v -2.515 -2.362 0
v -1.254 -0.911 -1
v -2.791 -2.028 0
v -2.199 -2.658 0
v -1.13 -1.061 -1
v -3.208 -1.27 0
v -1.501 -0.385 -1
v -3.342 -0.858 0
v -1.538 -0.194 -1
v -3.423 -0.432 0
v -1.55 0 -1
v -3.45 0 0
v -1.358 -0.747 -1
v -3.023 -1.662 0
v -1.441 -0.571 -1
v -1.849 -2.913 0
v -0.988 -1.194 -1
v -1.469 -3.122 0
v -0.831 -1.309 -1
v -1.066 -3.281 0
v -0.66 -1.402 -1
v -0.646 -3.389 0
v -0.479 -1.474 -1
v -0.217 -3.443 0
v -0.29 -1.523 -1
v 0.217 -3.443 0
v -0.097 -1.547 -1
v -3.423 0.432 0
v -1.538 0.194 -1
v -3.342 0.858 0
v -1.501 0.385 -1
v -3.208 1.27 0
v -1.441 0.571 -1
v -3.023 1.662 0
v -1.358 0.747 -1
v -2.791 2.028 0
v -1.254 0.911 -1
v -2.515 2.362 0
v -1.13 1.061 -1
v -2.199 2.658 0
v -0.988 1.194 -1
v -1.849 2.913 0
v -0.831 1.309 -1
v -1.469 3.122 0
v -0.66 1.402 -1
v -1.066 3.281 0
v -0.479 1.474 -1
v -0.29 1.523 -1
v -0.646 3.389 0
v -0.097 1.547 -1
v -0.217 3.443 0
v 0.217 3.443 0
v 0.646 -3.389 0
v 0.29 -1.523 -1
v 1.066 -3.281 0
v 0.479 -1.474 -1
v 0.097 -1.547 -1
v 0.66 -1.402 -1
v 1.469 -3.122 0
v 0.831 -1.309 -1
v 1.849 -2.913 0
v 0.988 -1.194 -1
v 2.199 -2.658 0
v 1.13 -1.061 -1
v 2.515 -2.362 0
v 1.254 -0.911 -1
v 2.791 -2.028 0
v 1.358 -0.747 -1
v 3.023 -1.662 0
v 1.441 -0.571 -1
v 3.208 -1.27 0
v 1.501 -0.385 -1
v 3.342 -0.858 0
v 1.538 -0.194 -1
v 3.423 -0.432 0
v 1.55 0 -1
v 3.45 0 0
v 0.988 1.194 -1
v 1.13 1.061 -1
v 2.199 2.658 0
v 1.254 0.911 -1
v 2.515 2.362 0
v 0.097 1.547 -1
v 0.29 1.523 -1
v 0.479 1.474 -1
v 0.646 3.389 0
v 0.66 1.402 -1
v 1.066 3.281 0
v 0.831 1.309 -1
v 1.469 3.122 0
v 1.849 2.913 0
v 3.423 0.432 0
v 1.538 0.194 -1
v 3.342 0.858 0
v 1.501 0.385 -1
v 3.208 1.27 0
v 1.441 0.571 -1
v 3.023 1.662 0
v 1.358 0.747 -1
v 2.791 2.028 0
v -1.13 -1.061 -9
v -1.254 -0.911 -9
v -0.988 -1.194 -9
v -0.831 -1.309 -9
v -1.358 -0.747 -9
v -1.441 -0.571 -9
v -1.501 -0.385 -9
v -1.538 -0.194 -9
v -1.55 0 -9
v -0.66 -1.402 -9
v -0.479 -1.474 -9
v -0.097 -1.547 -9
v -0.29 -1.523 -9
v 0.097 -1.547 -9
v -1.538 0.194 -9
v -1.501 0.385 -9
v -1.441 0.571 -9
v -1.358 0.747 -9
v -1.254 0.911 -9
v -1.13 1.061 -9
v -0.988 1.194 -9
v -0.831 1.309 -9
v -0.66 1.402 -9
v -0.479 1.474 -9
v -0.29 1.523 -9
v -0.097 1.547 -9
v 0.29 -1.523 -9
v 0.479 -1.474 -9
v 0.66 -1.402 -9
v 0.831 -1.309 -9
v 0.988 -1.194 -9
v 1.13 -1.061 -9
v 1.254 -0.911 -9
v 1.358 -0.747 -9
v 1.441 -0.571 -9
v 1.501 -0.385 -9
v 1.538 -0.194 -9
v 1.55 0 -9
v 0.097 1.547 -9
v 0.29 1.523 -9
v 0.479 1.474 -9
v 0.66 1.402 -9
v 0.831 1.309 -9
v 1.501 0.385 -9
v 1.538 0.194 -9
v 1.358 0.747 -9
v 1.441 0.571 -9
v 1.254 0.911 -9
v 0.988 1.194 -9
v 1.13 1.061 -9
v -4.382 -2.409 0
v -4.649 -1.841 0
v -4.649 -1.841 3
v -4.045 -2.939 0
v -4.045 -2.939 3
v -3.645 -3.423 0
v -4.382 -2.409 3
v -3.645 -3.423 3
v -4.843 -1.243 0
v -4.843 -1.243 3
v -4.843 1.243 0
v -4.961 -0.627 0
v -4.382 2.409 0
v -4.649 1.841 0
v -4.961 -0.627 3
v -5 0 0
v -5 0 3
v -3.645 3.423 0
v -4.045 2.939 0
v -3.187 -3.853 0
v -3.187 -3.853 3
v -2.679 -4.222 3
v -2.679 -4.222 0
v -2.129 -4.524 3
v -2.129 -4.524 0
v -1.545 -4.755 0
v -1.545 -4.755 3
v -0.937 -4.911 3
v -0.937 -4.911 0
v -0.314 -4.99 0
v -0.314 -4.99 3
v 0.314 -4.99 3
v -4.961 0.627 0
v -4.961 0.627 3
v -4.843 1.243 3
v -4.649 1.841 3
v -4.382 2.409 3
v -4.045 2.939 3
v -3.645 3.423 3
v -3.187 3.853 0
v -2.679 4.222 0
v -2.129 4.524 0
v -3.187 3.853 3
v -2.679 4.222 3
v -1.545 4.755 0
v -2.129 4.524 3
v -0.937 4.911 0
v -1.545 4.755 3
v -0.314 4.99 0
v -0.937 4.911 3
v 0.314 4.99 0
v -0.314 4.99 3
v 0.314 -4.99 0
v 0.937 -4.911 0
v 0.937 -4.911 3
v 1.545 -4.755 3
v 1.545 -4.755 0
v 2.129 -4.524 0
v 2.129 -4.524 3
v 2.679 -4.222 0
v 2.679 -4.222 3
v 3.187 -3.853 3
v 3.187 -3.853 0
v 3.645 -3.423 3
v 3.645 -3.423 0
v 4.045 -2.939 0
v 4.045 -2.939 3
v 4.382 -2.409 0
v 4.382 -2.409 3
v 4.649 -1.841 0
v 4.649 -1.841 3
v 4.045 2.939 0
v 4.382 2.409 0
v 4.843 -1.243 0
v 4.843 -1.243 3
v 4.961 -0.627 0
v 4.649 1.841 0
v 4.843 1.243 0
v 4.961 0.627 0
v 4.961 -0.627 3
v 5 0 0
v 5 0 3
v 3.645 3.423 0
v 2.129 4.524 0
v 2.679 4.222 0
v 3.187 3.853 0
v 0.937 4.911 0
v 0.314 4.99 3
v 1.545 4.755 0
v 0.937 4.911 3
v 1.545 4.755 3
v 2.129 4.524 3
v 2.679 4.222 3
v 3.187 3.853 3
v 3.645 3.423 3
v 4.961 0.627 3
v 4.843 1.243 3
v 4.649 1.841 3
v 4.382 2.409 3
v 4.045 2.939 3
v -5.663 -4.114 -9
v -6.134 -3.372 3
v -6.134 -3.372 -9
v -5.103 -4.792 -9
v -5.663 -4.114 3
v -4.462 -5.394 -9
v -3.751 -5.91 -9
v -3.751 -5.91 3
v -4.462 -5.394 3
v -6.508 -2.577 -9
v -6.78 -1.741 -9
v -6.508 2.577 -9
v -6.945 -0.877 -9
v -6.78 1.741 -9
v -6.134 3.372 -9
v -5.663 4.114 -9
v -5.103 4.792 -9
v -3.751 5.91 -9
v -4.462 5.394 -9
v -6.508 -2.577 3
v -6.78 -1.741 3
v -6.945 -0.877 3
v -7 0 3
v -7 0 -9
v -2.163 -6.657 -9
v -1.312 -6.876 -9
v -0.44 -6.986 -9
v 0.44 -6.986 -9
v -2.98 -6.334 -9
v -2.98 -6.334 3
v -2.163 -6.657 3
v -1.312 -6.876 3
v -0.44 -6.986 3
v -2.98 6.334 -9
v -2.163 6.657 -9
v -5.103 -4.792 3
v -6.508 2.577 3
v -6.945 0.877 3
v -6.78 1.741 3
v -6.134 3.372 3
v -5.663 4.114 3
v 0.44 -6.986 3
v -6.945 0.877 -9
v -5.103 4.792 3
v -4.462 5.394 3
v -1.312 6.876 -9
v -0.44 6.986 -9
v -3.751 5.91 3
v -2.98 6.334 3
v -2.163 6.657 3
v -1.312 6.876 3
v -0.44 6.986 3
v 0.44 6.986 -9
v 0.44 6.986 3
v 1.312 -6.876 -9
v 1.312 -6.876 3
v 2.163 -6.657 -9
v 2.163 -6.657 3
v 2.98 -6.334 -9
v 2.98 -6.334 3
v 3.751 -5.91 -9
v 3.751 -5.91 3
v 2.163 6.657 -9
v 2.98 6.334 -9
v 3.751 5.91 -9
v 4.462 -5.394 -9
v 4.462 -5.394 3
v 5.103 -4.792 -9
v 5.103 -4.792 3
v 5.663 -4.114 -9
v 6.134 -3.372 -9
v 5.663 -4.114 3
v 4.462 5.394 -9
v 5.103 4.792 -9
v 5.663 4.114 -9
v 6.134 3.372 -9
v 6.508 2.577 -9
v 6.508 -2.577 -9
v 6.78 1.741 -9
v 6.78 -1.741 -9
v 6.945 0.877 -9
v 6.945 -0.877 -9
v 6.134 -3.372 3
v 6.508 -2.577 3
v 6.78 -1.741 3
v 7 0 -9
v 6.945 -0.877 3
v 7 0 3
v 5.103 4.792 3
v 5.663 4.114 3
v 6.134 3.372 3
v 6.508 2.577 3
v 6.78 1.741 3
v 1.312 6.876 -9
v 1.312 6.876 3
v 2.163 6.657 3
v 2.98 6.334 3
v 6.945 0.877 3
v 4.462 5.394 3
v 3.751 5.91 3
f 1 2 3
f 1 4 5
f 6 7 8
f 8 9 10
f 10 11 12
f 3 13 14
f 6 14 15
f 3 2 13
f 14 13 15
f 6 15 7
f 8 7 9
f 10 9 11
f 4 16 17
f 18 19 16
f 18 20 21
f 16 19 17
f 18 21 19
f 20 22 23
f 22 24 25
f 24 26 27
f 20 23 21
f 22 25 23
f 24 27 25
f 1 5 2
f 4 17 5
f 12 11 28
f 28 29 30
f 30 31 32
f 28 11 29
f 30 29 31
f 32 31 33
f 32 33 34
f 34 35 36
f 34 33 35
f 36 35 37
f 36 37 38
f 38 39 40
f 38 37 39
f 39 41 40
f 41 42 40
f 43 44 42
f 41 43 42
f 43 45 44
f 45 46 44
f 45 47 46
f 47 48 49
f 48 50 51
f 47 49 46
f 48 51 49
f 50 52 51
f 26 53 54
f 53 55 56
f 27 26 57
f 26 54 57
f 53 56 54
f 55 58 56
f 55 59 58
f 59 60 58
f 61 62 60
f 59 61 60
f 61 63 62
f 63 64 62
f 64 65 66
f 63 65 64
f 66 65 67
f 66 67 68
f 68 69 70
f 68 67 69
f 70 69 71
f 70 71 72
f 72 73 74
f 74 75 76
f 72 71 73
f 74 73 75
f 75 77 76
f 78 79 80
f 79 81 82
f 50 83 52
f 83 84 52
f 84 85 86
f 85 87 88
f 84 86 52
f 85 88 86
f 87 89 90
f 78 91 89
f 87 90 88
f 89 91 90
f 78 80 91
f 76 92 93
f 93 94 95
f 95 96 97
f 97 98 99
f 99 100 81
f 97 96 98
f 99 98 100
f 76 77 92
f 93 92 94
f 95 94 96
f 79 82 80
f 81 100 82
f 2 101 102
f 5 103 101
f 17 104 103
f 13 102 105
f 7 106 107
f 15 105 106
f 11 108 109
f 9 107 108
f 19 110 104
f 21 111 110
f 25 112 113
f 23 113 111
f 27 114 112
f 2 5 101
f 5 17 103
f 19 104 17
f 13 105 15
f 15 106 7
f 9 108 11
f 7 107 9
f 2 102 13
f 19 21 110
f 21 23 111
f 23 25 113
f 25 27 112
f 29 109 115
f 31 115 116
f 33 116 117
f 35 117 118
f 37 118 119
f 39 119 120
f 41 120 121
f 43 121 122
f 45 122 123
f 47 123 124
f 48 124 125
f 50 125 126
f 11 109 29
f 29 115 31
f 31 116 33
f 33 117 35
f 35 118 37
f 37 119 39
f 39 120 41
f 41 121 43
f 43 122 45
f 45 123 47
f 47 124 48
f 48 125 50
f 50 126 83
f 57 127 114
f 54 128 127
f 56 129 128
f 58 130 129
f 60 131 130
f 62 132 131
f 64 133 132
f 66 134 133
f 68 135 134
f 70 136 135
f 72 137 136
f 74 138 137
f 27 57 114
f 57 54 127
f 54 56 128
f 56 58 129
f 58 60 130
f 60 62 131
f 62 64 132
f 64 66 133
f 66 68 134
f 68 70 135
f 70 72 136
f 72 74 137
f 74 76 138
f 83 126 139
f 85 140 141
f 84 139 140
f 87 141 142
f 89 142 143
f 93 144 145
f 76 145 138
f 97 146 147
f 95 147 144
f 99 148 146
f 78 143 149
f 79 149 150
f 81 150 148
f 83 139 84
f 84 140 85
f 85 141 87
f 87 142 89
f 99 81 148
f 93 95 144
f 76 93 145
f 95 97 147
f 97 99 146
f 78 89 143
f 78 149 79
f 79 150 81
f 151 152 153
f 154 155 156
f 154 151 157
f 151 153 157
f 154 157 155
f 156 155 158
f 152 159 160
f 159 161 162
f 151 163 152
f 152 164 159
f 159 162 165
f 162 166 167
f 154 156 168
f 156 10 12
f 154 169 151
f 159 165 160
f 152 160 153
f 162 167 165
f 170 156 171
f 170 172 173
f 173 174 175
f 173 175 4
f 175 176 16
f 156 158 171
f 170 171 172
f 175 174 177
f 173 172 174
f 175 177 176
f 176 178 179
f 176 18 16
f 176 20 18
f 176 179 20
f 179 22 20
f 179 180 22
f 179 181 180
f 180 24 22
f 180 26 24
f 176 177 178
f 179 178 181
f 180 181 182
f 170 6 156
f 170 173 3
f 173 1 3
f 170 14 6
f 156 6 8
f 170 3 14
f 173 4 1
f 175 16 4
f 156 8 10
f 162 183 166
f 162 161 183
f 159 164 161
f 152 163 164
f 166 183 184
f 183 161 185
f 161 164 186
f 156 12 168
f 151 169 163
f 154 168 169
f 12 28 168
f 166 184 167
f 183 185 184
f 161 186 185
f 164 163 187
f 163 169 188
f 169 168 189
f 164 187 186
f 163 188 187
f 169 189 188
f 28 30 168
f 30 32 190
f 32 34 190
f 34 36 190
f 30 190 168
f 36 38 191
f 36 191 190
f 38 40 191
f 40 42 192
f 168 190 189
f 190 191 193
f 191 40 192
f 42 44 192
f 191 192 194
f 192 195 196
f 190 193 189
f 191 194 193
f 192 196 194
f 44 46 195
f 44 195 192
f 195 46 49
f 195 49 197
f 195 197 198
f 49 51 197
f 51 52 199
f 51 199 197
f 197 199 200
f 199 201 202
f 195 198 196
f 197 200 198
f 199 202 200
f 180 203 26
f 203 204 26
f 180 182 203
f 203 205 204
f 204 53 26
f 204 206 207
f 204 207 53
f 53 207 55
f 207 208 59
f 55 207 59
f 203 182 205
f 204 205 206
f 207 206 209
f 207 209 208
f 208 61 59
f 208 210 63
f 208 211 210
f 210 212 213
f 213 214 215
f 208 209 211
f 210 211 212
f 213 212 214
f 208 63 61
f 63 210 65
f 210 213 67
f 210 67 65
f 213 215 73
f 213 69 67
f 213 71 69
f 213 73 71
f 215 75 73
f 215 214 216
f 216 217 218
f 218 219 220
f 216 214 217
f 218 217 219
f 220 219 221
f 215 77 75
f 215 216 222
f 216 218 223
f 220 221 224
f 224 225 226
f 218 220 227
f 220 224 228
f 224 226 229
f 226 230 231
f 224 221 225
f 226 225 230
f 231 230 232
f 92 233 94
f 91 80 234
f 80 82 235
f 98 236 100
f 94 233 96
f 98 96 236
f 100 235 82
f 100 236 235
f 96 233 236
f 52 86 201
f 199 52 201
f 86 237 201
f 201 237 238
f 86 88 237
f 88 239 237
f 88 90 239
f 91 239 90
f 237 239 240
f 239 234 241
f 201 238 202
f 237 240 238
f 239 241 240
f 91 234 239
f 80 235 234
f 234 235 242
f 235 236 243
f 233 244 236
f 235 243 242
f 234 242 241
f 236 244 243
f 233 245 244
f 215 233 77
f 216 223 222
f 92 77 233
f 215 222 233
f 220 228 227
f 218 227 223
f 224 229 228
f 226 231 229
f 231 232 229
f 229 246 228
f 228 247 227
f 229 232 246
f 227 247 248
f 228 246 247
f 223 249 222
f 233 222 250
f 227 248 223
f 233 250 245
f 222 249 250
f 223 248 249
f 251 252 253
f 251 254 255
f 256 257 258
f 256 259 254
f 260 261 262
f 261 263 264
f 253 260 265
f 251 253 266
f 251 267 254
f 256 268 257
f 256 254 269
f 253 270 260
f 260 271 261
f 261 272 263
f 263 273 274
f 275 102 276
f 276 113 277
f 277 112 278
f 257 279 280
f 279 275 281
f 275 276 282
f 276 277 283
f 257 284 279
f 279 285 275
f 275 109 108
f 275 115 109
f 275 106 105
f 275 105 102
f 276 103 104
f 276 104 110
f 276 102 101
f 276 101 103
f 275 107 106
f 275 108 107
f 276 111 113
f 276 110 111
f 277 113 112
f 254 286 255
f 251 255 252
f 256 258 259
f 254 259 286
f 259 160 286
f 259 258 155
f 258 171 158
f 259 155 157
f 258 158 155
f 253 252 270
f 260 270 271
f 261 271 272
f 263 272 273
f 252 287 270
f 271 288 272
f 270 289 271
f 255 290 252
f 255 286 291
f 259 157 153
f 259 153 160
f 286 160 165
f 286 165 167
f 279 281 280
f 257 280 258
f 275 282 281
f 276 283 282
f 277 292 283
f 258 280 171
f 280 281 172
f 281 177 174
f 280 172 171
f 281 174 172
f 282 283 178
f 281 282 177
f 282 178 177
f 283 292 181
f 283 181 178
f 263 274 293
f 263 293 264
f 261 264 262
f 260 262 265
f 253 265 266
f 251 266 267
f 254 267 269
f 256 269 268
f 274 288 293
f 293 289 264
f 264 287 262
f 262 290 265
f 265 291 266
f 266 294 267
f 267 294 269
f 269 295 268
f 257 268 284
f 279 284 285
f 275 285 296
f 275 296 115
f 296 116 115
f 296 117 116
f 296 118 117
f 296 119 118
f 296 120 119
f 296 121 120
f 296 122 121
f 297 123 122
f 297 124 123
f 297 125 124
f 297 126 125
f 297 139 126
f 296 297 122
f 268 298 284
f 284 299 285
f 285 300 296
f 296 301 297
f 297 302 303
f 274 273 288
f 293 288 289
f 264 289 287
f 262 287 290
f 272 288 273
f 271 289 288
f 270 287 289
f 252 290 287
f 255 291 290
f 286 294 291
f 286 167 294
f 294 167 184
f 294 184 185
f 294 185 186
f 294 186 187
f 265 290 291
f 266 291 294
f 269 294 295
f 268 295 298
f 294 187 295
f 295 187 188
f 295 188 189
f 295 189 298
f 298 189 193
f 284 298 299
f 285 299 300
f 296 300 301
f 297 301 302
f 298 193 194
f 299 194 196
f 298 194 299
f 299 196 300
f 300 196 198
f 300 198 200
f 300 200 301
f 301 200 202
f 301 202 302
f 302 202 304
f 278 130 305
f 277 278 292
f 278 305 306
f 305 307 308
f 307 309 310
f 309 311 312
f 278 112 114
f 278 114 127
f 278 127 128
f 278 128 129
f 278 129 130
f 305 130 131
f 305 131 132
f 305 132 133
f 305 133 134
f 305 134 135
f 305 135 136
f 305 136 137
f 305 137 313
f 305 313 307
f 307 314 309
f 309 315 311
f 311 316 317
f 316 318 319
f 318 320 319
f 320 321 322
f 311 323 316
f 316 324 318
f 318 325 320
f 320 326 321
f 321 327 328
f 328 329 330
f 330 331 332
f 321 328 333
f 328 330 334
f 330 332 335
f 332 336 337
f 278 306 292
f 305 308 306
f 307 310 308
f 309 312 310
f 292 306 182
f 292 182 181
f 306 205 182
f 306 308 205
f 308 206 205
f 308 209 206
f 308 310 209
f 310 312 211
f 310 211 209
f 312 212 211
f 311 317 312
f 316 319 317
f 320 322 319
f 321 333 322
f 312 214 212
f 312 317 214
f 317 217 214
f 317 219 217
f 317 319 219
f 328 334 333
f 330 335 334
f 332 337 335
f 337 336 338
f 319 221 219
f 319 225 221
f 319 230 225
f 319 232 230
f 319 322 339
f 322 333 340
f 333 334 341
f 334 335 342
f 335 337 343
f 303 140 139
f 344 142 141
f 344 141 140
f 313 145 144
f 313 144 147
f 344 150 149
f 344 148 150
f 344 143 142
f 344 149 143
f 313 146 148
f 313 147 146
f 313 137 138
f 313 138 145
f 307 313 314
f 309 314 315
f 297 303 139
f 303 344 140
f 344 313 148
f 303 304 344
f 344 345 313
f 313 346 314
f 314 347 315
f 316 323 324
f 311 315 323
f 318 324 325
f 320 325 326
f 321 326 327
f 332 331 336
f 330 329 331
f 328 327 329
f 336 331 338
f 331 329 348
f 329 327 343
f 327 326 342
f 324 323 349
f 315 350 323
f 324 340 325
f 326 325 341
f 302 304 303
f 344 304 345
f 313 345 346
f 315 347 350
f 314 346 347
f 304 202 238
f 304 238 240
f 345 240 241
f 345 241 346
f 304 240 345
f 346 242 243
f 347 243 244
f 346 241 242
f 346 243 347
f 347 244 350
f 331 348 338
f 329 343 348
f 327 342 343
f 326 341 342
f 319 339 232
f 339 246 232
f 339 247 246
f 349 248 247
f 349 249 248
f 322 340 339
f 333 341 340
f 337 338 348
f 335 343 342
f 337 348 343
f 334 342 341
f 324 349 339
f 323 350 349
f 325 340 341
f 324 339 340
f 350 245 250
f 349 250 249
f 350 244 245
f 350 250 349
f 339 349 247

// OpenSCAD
$fn = 50;


difference() {
	union() {
		translate(v = [0, 0, -9.0000000000]) {
			cylinder(h = 12, r = 7.0000000000);
		}
	}
	union() {
		translate(v = [0, 0, 0]) {
			rotate(a = [0, 0, 0]) {
				difference() {
					union() {
						translate(v = [0, 0, -12.0000000000]) {
							cylinder(h = 12, r = 1.2500000000);
						}
						translate(v = [0, 0, -1.0000000000]) {
							cylinder(h = 1.0000000000, r1 = 1.5500000000, r2 = 3.4500000000);
						}
						translate(v = [0, 0, -12.0000000000]) {
							cylinder(h = 12, r = 1.5500000000);
						}
						translate(v = [0, 0, -12.0000000000]) {
							cylinder(h = 12, r = 1.2500000000);
						}
					}
					union();
				}
			}
		}
		#cylinder(h = 3, r = 5.0000000000);
	}
}
